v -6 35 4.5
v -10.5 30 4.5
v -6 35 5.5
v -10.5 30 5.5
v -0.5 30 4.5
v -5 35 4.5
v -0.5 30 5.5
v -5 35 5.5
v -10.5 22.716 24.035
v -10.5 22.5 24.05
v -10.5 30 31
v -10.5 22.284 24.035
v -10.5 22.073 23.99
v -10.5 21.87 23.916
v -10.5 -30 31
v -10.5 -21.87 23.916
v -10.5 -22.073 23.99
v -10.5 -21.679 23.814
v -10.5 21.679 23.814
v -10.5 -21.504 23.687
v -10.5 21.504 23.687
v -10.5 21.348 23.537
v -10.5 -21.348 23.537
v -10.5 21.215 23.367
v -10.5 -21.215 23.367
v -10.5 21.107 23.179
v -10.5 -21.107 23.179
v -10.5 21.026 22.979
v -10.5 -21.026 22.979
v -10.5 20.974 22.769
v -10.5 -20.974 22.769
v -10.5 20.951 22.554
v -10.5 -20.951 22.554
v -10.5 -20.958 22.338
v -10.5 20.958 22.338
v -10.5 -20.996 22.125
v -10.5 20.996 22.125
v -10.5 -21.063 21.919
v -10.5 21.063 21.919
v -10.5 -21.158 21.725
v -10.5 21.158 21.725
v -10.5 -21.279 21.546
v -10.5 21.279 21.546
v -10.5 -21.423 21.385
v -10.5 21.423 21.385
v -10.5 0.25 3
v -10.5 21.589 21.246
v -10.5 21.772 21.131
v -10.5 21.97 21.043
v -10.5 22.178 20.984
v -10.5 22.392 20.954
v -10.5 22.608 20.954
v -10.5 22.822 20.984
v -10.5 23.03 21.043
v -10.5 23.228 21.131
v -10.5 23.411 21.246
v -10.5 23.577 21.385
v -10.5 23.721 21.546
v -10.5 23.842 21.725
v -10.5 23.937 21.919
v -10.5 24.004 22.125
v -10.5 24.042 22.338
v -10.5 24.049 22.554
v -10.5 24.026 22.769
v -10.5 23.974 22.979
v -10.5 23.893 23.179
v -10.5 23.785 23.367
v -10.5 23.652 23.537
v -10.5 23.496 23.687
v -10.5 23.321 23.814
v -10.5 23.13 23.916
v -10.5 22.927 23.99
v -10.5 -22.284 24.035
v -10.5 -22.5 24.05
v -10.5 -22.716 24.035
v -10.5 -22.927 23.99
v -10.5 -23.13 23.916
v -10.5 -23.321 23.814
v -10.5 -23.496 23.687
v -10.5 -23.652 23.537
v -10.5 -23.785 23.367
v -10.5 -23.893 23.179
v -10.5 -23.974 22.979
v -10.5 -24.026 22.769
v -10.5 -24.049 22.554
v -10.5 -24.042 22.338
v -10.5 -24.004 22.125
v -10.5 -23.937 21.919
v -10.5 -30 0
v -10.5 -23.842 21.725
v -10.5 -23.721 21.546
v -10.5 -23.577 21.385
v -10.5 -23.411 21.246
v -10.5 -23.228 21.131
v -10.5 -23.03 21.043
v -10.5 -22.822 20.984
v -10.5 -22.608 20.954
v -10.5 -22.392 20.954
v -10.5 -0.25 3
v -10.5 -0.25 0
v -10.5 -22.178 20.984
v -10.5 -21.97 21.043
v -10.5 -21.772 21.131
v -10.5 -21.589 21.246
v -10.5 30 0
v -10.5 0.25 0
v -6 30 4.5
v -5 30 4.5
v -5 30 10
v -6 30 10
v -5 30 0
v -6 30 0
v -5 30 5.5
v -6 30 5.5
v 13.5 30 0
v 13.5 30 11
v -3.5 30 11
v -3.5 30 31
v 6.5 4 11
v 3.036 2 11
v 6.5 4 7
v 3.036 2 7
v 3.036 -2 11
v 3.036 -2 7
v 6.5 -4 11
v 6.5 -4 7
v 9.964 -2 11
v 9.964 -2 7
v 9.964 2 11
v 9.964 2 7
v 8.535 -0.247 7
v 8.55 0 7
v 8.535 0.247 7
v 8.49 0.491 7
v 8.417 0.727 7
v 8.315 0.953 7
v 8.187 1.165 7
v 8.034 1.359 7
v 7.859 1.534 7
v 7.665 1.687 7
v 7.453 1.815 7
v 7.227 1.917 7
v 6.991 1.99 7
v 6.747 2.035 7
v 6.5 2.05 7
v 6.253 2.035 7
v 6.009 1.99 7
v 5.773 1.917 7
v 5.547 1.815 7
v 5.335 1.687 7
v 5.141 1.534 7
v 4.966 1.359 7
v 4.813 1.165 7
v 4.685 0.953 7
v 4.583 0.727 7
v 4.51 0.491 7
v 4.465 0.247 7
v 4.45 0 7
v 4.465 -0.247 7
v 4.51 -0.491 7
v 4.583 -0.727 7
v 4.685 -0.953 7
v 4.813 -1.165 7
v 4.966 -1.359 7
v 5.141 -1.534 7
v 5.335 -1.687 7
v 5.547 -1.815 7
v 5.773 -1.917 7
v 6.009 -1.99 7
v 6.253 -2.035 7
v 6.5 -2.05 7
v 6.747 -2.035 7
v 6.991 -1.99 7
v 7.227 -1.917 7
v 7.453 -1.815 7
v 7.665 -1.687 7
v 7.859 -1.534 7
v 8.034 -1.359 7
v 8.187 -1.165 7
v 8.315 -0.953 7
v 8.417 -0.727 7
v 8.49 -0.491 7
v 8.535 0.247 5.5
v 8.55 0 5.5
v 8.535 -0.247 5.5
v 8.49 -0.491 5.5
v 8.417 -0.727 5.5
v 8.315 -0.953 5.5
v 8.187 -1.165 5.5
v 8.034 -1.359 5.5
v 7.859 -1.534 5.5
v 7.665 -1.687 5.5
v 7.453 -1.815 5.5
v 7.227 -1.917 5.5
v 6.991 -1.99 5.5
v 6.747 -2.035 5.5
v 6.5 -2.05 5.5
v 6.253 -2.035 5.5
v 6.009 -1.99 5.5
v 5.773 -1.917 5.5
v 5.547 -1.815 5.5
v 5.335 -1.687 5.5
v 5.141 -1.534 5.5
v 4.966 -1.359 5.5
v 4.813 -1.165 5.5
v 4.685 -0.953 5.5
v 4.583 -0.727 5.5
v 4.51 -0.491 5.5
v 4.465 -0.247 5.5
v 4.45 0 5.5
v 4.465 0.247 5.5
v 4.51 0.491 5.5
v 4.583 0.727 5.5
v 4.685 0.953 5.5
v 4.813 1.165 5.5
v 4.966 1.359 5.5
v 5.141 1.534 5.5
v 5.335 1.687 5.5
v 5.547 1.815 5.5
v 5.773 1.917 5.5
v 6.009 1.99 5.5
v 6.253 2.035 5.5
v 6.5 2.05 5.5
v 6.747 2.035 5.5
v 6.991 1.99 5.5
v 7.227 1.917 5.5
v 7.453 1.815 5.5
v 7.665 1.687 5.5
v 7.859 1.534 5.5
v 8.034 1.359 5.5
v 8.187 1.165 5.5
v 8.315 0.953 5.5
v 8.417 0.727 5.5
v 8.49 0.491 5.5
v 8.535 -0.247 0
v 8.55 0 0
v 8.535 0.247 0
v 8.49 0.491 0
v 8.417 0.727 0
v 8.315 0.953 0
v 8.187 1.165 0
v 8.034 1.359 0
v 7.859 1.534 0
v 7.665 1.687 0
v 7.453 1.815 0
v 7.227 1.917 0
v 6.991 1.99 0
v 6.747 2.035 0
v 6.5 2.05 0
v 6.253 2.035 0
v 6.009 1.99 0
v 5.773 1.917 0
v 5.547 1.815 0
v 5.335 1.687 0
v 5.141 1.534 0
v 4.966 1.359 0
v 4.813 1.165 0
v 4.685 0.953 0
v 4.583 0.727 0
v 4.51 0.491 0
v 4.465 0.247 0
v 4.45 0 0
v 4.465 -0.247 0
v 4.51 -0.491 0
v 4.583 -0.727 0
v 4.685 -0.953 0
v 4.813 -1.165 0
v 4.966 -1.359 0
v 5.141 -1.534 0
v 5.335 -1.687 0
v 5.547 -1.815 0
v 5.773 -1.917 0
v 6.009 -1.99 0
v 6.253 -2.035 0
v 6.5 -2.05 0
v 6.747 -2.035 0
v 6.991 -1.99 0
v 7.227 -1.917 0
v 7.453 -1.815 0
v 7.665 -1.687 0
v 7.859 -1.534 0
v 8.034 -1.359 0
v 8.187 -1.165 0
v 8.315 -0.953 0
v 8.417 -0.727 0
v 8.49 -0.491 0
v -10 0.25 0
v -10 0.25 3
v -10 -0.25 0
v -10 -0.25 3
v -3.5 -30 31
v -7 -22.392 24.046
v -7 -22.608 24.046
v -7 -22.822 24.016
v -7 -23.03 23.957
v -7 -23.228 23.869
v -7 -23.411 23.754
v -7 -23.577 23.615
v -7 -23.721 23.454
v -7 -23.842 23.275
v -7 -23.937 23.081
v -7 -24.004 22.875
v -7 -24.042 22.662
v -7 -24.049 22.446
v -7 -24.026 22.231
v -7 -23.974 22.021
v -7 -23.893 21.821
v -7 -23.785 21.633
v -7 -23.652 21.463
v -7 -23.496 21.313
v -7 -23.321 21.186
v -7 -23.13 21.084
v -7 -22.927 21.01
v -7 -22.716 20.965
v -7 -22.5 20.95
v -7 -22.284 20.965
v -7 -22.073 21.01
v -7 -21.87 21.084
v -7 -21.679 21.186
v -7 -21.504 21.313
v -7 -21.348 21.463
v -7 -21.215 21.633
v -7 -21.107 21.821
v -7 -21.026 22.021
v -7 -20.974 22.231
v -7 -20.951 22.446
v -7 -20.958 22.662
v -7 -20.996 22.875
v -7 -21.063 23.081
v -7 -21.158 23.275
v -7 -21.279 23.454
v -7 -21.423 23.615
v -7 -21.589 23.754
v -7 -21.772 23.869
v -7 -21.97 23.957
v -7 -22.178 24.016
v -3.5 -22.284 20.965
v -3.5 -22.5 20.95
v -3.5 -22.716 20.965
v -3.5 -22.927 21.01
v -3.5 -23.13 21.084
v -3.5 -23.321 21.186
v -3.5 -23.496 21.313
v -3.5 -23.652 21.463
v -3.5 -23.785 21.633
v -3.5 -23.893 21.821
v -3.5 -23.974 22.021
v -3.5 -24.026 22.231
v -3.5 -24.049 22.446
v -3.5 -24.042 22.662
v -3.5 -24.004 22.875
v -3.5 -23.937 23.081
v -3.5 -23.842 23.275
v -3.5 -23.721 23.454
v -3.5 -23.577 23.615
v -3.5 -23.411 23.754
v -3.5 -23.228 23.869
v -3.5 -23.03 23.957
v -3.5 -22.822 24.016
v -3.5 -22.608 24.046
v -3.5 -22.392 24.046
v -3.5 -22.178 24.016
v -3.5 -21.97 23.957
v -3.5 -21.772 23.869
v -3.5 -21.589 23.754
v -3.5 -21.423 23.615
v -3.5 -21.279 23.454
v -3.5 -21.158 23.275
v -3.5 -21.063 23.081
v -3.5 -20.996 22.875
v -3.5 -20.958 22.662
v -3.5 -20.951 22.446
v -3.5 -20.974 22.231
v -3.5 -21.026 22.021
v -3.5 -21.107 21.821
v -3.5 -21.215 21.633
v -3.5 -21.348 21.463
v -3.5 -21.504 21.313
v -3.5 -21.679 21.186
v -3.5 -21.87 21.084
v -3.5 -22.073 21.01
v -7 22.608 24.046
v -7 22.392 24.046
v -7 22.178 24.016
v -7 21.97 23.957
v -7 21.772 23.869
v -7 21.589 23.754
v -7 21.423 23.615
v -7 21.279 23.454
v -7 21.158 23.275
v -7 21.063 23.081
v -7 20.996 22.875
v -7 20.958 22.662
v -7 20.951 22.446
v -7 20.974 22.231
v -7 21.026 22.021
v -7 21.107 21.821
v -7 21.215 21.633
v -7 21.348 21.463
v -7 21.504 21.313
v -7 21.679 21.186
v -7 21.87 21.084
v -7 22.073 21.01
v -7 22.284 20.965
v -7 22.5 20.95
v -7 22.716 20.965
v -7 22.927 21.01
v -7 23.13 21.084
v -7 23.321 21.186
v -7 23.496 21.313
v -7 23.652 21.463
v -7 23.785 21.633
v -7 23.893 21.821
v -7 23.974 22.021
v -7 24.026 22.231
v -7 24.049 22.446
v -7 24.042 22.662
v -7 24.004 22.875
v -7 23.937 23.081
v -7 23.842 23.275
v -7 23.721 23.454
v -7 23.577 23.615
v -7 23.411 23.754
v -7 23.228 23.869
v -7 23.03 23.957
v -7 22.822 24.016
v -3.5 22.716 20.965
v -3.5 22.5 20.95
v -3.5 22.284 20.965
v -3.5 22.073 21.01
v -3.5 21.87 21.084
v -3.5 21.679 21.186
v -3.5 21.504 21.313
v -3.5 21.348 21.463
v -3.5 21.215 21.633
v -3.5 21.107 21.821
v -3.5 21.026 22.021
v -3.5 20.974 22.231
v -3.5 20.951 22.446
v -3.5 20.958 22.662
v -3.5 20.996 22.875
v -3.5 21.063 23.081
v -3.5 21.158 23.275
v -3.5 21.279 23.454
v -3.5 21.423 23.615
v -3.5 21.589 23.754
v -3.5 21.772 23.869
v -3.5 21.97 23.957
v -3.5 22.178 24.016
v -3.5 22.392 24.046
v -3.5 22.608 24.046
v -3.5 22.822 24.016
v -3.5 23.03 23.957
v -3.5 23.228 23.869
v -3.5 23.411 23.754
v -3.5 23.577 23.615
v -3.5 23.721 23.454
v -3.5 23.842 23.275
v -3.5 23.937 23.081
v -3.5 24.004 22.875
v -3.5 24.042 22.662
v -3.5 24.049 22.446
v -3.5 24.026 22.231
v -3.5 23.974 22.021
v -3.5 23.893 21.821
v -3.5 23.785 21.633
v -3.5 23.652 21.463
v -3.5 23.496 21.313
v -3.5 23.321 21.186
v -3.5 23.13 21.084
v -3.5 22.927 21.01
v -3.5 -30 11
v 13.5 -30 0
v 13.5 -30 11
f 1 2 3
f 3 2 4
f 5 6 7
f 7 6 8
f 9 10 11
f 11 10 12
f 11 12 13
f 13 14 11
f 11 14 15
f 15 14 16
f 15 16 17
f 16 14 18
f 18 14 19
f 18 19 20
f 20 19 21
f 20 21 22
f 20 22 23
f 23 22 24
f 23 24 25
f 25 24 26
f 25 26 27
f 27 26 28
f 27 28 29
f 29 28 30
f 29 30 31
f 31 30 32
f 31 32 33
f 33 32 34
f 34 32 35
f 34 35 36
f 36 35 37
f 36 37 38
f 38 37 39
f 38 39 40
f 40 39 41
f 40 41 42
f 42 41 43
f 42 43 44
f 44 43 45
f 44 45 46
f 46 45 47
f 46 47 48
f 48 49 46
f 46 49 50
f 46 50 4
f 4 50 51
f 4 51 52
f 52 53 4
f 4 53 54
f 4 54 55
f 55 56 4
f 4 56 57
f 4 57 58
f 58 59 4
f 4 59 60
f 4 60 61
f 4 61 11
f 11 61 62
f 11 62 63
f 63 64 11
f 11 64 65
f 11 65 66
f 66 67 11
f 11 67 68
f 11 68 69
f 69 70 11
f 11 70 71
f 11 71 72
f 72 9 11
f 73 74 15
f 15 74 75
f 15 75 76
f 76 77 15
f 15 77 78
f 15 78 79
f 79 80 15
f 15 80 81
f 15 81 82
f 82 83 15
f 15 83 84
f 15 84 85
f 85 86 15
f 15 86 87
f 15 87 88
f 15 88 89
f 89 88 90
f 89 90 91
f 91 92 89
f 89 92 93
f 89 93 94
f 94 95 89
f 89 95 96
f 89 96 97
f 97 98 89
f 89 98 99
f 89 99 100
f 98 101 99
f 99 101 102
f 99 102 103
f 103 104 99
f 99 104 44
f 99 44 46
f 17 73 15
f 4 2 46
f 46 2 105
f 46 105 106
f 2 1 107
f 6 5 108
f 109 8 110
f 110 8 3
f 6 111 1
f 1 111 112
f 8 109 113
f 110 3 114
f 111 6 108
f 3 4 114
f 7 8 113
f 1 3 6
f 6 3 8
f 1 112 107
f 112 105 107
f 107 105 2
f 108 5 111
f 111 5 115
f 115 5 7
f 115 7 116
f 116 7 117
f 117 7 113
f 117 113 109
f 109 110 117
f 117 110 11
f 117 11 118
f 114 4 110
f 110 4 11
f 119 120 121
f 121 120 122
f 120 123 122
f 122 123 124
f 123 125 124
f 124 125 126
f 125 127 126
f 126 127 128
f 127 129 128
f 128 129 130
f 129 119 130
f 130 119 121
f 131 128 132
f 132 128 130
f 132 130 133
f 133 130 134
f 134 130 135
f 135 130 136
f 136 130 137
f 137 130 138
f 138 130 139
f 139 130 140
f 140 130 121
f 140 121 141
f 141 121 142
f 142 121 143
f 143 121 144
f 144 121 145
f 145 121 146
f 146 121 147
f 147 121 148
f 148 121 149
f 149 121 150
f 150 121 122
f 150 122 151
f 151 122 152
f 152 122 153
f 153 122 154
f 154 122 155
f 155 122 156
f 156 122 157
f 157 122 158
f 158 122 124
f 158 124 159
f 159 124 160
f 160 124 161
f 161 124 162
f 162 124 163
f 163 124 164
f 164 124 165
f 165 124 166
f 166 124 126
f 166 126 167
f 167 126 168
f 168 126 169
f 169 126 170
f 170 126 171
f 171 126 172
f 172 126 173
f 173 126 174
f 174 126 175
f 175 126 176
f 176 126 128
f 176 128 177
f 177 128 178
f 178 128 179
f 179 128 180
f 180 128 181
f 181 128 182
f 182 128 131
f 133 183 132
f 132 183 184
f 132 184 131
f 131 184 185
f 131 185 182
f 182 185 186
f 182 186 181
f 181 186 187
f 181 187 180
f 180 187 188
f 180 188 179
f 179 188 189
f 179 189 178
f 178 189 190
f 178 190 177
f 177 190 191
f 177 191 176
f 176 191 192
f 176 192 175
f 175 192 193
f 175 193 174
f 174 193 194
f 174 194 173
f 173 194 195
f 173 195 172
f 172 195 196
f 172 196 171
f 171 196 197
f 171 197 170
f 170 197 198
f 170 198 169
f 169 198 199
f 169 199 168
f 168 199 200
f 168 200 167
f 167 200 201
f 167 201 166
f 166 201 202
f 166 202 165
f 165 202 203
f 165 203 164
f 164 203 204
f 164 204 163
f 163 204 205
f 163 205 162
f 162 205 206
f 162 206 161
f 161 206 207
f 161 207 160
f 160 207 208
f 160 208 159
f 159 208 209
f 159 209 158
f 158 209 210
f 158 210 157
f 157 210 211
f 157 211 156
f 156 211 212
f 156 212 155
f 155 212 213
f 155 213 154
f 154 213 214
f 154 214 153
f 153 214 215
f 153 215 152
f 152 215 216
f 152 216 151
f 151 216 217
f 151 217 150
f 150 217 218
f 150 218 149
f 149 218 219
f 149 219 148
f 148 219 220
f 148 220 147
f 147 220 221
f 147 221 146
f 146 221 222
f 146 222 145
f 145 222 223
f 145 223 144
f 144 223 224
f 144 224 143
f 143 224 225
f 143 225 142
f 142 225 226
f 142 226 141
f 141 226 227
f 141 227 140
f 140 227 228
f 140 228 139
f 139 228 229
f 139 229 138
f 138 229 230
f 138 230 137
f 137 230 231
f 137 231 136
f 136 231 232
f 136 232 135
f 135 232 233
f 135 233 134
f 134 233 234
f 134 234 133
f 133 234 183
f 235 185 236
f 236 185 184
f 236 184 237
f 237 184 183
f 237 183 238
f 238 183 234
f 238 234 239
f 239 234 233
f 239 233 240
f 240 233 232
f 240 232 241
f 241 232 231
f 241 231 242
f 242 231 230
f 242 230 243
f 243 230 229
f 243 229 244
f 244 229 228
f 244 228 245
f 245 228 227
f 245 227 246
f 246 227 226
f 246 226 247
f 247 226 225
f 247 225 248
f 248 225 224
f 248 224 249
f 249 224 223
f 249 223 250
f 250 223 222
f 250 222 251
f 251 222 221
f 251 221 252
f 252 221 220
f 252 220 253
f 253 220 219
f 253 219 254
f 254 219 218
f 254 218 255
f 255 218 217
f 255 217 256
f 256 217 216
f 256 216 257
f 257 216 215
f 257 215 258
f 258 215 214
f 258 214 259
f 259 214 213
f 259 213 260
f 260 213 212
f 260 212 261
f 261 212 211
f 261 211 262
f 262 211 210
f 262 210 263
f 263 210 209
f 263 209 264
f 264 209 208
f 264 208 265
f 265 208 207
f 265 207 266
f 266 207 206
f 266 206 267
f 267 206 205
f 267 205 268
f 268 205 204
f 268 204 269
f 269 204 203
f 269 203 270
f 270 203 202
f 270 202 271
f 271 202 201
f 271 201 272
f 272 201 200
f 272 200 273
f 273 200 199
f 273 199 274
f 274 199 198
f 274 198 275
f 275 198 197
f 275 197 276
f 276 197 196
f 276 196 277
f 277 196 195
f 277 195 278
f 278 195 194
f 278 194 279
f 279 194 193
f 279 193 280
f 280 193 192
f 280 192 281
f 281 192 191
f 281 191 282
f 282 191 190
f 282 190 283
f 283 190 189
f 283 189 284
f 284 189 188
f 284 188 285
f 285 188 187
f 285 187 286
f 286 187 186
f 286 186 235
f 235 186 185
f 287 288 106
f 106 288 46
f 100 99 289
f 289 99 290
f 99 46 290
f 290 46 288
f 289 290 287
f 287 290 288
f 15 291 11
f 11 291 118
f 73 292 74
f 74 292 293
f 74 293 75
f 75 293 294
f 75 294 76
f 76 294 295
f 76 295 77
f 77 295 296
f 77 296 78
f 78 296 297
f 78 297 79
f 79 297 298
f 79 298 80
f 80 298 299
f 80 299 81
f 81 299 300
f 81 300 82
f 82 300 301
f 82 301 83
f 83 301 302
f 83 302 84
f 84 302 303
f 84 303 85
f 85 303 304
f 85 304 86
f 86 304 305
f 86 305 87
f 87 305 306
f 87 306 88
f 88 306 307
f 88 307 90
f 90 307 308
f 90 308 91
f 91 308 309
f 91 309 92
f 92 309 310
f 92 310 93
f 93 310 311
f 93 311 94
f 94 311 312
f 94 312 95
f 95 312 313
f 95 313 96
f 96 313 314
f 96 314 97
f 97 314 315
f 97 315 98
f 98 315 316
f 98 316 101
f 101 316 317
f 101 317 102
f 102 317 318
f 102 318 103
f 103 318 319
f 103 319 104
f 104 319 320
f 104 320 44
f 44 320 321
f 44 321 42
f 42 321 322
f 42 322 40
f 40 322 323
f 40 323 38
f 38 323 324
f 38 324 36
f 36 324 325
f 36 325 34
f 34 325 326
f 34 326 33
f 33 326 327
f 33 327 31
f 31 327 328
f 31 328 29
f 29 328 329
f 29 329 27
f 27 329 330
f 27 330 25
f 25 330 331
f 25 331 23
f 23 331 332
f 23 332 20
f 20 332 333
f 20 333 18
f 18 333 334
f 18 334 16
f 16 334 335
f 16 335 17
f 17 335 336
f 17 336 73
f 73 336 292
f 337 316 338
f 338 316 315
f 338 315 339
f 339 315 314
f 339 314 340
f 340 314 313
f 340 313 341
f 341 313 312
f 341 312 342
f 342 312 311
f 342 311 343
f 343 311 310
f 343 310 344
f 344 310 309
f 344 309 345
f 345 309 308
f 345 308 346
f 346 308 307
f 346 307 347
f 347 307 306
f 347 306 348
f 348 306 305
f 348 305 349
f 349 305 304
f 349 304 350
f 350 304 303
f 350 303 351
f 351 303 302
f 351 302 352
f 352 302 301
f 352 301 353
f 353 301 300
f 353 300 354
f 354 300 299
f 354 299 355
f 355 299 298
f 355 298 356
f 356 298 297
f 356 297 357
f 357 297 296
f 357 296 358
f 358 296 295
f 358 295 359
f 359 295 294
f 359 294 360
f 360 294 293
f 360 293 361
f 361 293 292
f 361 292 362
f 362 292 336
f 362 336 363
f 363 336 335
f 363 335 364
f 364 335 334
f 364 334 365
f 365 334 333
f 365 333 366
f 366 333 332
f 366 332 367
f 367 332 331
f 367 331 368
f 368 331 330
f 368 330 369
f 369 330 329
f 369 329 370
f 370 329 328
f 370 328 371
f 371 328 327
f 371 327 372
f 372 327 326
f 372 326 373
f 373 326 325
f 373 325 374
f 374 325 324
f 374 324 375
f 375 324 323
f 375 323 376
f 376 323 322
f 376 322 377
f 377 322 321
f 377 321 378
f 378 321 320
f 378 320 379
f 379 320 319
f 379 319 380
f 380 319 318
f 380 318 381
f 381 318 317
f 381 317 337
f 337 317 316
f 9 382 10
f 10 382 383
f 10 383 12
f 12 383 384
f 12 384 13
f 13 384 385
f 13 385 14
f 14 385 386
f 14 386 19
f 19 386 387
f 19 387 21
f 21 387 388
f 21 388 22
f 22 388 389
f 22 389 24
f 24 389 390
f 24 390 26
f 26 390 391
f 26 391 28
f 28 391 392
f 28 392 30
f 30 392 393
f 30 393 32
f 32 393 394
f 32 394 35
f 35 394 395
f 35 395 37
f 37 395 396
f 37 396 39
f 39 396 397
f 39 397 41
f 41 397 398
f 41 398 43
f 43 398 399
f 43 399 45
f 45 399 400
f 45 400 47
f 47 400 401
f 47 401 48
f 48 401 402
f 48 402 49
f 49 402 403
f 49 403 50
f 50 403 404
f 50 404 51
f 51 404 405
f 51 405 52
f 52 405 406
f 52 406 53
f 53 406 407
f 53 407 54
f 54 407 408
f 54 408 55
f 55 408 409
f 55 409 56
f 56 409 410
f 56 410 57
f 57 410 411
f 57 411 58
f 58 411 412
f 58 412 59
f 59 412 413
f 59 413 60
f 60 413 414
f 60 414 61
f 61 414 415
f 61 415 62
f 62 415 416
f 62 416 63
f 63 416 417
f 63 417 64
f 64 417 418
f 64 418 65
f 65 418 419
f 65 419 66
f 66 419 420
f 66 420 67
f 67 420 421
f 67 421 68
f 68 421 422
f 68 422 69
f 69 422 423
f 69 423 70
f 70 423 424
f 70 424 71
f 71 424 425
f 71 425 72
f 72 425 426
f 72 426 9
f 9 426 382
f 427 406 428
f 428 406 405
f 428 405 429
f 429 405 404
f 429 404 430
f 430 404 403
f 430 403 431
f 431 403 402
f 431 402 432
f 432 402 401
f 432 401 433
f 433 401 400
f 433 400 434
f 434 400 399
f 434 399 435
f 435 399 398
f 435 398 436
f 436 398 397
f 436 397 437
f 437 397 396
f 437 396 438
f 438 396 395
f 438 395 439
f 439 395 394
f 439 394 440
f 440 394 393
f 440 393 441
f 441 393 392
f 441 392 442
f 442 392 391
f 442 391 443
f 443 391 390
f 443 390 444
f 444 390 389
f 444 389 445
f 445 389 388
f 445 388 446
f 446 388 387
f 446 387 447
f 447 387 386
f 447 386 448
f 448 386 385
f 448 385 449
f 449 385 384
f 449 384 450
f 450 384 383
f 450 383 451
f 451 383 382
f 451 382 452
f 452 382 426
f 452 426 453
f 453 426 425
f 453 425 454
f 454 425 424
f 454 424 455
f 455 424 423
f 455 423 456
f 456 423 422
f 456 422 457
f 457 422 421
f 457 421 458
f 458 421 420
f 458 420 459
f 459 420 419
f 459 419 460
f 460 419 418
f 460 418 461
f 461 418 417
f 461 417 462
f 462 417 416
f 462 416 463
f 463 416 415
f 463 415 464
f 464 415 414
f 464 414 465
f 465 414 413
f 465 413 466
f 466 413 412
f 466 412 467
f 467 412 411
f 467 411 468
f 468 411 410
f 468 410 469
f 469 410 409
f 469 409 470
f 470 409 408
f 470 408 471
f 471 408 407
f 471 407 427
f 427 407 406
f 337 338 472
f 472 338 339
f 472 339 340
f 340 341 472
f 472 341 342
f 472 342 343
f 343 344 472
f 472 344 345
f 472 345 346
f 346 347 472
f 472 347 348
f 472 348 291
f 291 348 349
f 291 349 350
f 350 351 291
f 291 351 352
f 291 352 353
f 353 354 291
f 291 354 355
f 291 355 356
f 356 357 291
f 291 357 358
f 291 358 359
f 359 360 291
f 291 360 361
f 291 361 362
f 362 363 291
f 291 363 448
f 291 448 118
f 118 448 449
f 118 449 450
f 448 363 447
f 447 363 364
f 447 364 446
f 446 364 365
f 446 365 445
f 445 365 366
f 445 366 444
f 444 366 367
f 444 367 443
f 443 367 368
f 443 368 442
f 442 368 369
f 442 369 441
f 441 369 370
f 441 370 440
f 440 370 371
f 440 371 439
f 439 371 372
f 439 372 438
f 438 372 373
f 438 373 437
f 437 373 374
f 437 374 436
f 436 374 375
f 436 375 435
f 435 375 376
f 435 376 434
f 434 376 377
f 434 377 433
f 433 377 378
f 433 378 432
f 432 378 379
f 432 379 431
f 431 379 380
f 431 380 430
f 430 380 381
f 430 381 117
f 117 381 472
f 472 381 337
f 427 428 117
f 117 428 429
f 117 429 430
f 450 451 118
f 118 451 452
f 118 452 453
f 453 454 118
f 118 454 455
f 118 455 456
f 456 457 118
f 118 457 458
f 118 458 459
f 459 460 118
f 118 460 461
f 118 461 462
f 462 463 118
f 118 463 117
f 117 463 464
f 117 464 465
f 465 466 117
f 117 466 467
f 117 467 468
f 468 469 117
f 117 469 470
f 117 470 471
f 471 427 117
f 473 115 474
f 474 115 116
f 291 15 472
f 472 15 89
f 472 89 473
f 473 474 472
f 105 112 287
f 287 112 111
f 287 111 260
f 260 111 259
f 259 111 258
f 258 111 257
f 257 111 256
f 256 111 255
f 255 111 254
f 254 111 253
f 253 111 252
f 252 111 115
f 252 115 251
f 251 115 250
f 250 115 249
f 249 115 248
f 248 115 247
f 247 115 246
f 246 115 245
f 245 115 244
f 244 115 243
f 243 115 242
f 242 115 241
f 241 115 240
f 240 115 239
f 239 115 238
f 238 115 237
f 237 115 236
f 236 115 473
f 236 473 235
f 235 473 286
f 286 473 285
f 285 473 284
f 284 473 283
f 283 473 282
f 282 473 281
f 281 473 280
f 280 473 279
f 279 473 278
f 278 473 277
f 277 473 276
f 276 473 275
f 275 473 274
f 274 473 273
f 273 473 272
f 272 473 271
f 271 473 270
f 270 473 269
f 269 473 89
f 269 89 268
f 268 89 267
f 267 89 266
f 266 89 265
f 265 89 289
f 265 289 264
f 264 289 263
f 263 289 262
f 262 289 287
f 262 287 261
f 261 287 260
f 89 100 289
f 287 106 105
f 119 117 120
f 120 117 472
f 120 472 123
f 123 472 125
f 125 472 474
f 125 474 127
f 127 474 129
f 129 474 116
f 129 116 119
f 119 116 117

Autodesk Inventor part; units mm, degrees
ref_plane "YZ Plane" through (0, 0, 0) normal (1, 0, 0) x (0, 1, 0)
ref_plane "XZ Plane" through (0, 0, 0) normal (0, 1, 0) x (-1, 0, 0)
ref_plane "XY Plane" through (0, 0, 0) normal (0, 0, 1) x (1, 0, 0)
sketch "Skizze1" plane through (0, 0, 0) normal (0, 0, 1) x (1, 0, 0)
  line L0 (-13.5, 30) -> (13.5, 30)
  line L1 (13.5, 30) -> (13.5, -30)
  line L2 (13.5, -30) -> (-13.5, -30)
  line L3 (-13.5, -30) -> (-13.5, 30)
  line L4 (-13.5, 30) -> (13.5, -30) construction
  line L5 (13.5, 30) -> (-13.5, -30) construction
  point P0 (0, 0)
  dimension "d0" = 27
  dimension "d1" = 60
extrude "Extrusion1" add sketch "Skizze1" along normal blind 11
sketch "Skizze2" plane through (0, 0, 11) normal (0, 0, 1) x (1, 0, 0)
  line L0 (13.5, 30) -> (-13.5, 30) projected
  line L1 (-13.5, -30) -> (13.5, -30) projected
  line L2 (-13.5, 30) -> (-3.5, 30)
  line L3 (-3.5, 30) -> (-3.5, -30)
  line L4 (-3.5, -30) -> (-13.5, -30)
  line L5 (-13.5, -30) -> (-13.5, 30)
  point P0 (0, 0)
  dimension "d4" = 10
extrude "Extrusion2" add sketch "Skizze2" along normal blind 20
sketch "Skizze3" plane through (-3.5, -30, 11) normal (1, 0, 0) x (0, 0, -1)
  line L0 (0, 60) -> (0, 0) construction
  line L1 (0, 60) -> (-20, 60) construction
  line L2 (-20, 0) -> (-20, 60) construction
  line L3 (0, 0) -> (-20, 0) construction
  line L4 (0, 60) -> (0, 0) projected
  line L5 (0, 30) -> (-11.5, 30) construction
  line L6 (-11.5, 30) -> (-11.5, 52.5) construction
  line L7 (-11.5, 30) -> (-11.5, 7.5) construction
  circle A0 centre (-11.5, 7.5) radius 1.55
  circle A1 centre (-11.5, 52.5) radius 1.55
  point P0 (11, 30)
  dimension "d7" = 11.5
  dimension "d8" = 22.5
  dimension "d9" = 22.5
  dimension "d10" = 3.1
  dimension "d11" = 3.1
extrude "Extrusion3" cut sketch "Skizze3" against normal through all
sketch "Skizze4" plane through (-13.5, -30, 0) normal (-1, 0, 0) x (0, 0, 1)
  circle A0 centre (22.5, 7.5) radius 1.55 projected
  circle A1 centre (22.5, 52.5) radius 1.55 projected
  line L0 (0, 0) -> (0, 60) projected
  line L1 (0, 0) -> (31, 0) projected
  line L2 (31, 60) -> (31, 0) projected
  line L3 (0, 60) -> (31, 60) projected
  point P0 (0, 30)
extrude "Extrusion4" cut sketch "Skizze4" against normal blind 3
sketch "Skizze5" plane through (-10.5, -30, 0) normal (-1, 0, 0) x (0, 0, 1)
  line L0 (-3, 30.25) -> (3, 30.25)
  line L1 (3, 30.25) -> (3, 29.75)
  line L2 (3, 29.75) -> (-3, 29.75)
  line L3 (-3, 29.75) -> (-3, 30.25)
  line L4 (-3, 30.25) -> (3, 29.75) construction
  line L5 (3, 30.25) -> (-3, 29.75) construction
  point P0 (0, 30)
  dimension "d16" = 6
  dimension "d17" = 0.5
extrude "Extrusion5" cut sketch "Skizze5" against normal blind 0.5
sketch "Skizze6" plane through (0, 0, 11) normal (0, 0, 1) x (1, 0, 0)
  line L0 (-3.5, -30) -> (-3.5, 30) projected
  line L1 (-3.5, 0) -> (6.5, 0)
  circle A0 centre (6.5, 0) radius 2.05
  point P0 (0, 0)
  dimension "d20" = 10
  dimension "d21" = 4.1
extrude "Extrusion6" cut sketch "Skizze6" against normal through all
sketch "Skizze7" plane through (0, 0, 11) normal (0, 0, 1) x (1, 0, 0)
  circle A0 centre (6.5, 0) radius 2.05 projected
  line L0 (6.5, 0) -> (6.5, 4)
  line L1 (6.5, 0) -> (14.5, 0) construction
  line L2 (6.5, 4) -> (9.9641, 2)
  line L3 (9.9641, 2) -> (9.9641, -2)
  line L4 (9.9641, -2) -> (6.5, -4)
  line L5 (6.5, -4) -> (3.0359, -2)
  line L6 (3.0359, -2) -> (3.0359, 2)
  line L7 (3.0359, 2) -> (6.5, 4)
  point P0 (0, 0)
  dimension "d24" = 4
extrude "Extrusion7" cut sketch "Skizze7" against normal blind 4
ref_plane "Arbeitsebene1" through (6.5, 0, 11) normal (0, 0, 1) x (1, 0, 0)
ref_plane "Arbeitsebene2" through (6.5, 0, 11) normal (0, 1, 0) x (1, 0, 0)
ref_plane "Arbeitsebene3" through (6.5, 0, 11) normal (1, 0, 0) x (0, 0, -1)
sketch "Skizze11" plane through (13.5, 30, 11) normal (0, 1, 0) x (1, 0, 0)
  line L0 (-24, 11) -> (-24, -20) construction
  line L1 (-17, -20) -> (-24, -20) construction
  line L2 (-17, 0) -> (-17, -20) construction
  line L3 (0, 0) -> (-17, 0) construction
  line L4 (0, 11) -> (0, 0) construction
  line L5 (-24, 11) -> (0, 11) construction
  line L6 (0, 11) -> (-24, 11) projected
  line L7 (-24, 11) -> (-14, 11) construction
  line L8 (-14, 11) -> (-14, 1) construction
  line L9 (-14, 1) -> (-24, 1) construction
  line L10 (-24, 1) -> (-24, 11) construction
  line L11 (-24, 11) -> (-24, -20) projected
  line L12 (-14, 6.5) -> (-24, 6.5)
  line L13 (-24, 6.5) -> (-24, 5.5)
  line L14 (-24, 5.5) -> (-14, 5.5)
  line L15 (-14, 5.5) -> (-14, 6.5)
  line L16 (-14, 6.5) -> (-24, 5.5) construction
  line L17 (-24, 6.5) -> (-14, 5.5) construction
  line L18 (-18.5, 11) -> (-19.5, 11)
  line L19 (-19.5, 11) -> (-19.5, 1)
  line L20 (-19.5, 1) -> (-18.5, 1)
  line L21 (-18.5, 1) -> (-18.5, 11)
  line L22 (-18.5, 11) -> (-19.5, 1) construction
  line L23 (-19.5, 11) -> (-18.5, 1) construction
  point P0 (-13.5, 11)
  point P1 (-19, 6)
  point P2 (-19, 6)
  dimension "d46" = 10
  dimension "d47" = 10
extrude "Extrusion11" add sketch "Skizze11" along normal blind 5 contours L21 L12 L19 L6 | L21 L14 L19 L12 | L12 L15 L14 L21 | L19 L14 L11 L12 | L21 L20 L19 L14
sketch "Skizze12" plane through (-6, 30, 5.5) normal (-1, 0, 0) x (0, 0, 1)
  line L0 (0, 5) -> (0, 0) projected
  line L1 (4.5, 0) -> (0, 0) projected
  line L2 (4.5, 0) -> (4.5, 5) projected
  line L3 (0, 5) -> (4.5, 5) projected
  line L4 (-1, 0) -> (-1, 5) projected
  line L5 (-5.5, 5) -> (-1, 5) projected
  line L6 (-5.5, 0) -> (-5.5, 5) projected
  line L7 (-1, 0) -> (-5.5, 0) projected
  line L8 (0, 0) -> (0, 5) projected
  line L9 (4.5, 0) -> (4.5, 5) projected
  line L10 (0, 5) -> (4.5, 5)
  line L11 (4.5, 5) -> (4.5, 0)
  line L12 (4.5, 0) -> (0, 5)
  line L13 (-5.5, 5) -> (-1, 5) projected
  line L14 (-5.5, 5) -> (-1, 5)
  line L15 (-5.5, 0) -> (5.5, 0) projected
  line L16 (-1, 5) -> (-5.5, 0)
  line L17 (-5.5, 0) -> (-5.5, 5)
  point P0 (-5.5, -30)
extrude "Extrusion12" cut sketch "Skizze12" against normal up to surface (1 mm away) contours L3 L2 L12 | L16 L6 L5
sketch "Skizze13" plane through (-10.5, 30, 5.5) normal (0, 0, 1) x (1, 0, 0)
  line L0 (4.5, 5) -> (4.5, 0) projected
  line L1 (0, 5) -> (4.5, 5) projected
  line L2 (0, 0) -> (0, 5) projected
  line L3 (4.5, 0) -> (0, 0) projected
  line L4 (5.5, 0) -> (5.5, 5) projected
  line L5 (10, 0) -> (5.5, 0) projected
  line L6 (10, 0) -> (10, 5) projected
  line L7 (5.5, 5) -> (10, 5) projected
  line L8 (4.5, 0) -> (4.5, 5) projected
  line L9 (4.5, 5) -> (0, 0)
  line L10 (0, 5) -> (4.5, 5) projected
  line L11 (0, 5) -> (4.5, 5)
  line L12 (0, 5) -> (0, 0)
  line L13 (5.5, 5) -> (5.5, 0) projected
  line L14 (5.5, 0) -> (5.5, 5)
  line L15 (10, 5) -> (5.5, 5) projected
  line L16 (5.5, 5) -> (10, 5)
  line L17 (5.5, 5) -> (10, 0)
  line L18 (10, 0) -> (10, 5) projected
  line L19 (10, 5) -> (10, 0)
  point P0 (10.5, -30)
extrude "Extrusion13" cut sketch "Skizze13" against normal up to surface (1 mm away) contours L9 L2 L1 | L7 L6 L17
properties part number "cam_holder_hog_part" material "Acetalharz, Schwarz"
